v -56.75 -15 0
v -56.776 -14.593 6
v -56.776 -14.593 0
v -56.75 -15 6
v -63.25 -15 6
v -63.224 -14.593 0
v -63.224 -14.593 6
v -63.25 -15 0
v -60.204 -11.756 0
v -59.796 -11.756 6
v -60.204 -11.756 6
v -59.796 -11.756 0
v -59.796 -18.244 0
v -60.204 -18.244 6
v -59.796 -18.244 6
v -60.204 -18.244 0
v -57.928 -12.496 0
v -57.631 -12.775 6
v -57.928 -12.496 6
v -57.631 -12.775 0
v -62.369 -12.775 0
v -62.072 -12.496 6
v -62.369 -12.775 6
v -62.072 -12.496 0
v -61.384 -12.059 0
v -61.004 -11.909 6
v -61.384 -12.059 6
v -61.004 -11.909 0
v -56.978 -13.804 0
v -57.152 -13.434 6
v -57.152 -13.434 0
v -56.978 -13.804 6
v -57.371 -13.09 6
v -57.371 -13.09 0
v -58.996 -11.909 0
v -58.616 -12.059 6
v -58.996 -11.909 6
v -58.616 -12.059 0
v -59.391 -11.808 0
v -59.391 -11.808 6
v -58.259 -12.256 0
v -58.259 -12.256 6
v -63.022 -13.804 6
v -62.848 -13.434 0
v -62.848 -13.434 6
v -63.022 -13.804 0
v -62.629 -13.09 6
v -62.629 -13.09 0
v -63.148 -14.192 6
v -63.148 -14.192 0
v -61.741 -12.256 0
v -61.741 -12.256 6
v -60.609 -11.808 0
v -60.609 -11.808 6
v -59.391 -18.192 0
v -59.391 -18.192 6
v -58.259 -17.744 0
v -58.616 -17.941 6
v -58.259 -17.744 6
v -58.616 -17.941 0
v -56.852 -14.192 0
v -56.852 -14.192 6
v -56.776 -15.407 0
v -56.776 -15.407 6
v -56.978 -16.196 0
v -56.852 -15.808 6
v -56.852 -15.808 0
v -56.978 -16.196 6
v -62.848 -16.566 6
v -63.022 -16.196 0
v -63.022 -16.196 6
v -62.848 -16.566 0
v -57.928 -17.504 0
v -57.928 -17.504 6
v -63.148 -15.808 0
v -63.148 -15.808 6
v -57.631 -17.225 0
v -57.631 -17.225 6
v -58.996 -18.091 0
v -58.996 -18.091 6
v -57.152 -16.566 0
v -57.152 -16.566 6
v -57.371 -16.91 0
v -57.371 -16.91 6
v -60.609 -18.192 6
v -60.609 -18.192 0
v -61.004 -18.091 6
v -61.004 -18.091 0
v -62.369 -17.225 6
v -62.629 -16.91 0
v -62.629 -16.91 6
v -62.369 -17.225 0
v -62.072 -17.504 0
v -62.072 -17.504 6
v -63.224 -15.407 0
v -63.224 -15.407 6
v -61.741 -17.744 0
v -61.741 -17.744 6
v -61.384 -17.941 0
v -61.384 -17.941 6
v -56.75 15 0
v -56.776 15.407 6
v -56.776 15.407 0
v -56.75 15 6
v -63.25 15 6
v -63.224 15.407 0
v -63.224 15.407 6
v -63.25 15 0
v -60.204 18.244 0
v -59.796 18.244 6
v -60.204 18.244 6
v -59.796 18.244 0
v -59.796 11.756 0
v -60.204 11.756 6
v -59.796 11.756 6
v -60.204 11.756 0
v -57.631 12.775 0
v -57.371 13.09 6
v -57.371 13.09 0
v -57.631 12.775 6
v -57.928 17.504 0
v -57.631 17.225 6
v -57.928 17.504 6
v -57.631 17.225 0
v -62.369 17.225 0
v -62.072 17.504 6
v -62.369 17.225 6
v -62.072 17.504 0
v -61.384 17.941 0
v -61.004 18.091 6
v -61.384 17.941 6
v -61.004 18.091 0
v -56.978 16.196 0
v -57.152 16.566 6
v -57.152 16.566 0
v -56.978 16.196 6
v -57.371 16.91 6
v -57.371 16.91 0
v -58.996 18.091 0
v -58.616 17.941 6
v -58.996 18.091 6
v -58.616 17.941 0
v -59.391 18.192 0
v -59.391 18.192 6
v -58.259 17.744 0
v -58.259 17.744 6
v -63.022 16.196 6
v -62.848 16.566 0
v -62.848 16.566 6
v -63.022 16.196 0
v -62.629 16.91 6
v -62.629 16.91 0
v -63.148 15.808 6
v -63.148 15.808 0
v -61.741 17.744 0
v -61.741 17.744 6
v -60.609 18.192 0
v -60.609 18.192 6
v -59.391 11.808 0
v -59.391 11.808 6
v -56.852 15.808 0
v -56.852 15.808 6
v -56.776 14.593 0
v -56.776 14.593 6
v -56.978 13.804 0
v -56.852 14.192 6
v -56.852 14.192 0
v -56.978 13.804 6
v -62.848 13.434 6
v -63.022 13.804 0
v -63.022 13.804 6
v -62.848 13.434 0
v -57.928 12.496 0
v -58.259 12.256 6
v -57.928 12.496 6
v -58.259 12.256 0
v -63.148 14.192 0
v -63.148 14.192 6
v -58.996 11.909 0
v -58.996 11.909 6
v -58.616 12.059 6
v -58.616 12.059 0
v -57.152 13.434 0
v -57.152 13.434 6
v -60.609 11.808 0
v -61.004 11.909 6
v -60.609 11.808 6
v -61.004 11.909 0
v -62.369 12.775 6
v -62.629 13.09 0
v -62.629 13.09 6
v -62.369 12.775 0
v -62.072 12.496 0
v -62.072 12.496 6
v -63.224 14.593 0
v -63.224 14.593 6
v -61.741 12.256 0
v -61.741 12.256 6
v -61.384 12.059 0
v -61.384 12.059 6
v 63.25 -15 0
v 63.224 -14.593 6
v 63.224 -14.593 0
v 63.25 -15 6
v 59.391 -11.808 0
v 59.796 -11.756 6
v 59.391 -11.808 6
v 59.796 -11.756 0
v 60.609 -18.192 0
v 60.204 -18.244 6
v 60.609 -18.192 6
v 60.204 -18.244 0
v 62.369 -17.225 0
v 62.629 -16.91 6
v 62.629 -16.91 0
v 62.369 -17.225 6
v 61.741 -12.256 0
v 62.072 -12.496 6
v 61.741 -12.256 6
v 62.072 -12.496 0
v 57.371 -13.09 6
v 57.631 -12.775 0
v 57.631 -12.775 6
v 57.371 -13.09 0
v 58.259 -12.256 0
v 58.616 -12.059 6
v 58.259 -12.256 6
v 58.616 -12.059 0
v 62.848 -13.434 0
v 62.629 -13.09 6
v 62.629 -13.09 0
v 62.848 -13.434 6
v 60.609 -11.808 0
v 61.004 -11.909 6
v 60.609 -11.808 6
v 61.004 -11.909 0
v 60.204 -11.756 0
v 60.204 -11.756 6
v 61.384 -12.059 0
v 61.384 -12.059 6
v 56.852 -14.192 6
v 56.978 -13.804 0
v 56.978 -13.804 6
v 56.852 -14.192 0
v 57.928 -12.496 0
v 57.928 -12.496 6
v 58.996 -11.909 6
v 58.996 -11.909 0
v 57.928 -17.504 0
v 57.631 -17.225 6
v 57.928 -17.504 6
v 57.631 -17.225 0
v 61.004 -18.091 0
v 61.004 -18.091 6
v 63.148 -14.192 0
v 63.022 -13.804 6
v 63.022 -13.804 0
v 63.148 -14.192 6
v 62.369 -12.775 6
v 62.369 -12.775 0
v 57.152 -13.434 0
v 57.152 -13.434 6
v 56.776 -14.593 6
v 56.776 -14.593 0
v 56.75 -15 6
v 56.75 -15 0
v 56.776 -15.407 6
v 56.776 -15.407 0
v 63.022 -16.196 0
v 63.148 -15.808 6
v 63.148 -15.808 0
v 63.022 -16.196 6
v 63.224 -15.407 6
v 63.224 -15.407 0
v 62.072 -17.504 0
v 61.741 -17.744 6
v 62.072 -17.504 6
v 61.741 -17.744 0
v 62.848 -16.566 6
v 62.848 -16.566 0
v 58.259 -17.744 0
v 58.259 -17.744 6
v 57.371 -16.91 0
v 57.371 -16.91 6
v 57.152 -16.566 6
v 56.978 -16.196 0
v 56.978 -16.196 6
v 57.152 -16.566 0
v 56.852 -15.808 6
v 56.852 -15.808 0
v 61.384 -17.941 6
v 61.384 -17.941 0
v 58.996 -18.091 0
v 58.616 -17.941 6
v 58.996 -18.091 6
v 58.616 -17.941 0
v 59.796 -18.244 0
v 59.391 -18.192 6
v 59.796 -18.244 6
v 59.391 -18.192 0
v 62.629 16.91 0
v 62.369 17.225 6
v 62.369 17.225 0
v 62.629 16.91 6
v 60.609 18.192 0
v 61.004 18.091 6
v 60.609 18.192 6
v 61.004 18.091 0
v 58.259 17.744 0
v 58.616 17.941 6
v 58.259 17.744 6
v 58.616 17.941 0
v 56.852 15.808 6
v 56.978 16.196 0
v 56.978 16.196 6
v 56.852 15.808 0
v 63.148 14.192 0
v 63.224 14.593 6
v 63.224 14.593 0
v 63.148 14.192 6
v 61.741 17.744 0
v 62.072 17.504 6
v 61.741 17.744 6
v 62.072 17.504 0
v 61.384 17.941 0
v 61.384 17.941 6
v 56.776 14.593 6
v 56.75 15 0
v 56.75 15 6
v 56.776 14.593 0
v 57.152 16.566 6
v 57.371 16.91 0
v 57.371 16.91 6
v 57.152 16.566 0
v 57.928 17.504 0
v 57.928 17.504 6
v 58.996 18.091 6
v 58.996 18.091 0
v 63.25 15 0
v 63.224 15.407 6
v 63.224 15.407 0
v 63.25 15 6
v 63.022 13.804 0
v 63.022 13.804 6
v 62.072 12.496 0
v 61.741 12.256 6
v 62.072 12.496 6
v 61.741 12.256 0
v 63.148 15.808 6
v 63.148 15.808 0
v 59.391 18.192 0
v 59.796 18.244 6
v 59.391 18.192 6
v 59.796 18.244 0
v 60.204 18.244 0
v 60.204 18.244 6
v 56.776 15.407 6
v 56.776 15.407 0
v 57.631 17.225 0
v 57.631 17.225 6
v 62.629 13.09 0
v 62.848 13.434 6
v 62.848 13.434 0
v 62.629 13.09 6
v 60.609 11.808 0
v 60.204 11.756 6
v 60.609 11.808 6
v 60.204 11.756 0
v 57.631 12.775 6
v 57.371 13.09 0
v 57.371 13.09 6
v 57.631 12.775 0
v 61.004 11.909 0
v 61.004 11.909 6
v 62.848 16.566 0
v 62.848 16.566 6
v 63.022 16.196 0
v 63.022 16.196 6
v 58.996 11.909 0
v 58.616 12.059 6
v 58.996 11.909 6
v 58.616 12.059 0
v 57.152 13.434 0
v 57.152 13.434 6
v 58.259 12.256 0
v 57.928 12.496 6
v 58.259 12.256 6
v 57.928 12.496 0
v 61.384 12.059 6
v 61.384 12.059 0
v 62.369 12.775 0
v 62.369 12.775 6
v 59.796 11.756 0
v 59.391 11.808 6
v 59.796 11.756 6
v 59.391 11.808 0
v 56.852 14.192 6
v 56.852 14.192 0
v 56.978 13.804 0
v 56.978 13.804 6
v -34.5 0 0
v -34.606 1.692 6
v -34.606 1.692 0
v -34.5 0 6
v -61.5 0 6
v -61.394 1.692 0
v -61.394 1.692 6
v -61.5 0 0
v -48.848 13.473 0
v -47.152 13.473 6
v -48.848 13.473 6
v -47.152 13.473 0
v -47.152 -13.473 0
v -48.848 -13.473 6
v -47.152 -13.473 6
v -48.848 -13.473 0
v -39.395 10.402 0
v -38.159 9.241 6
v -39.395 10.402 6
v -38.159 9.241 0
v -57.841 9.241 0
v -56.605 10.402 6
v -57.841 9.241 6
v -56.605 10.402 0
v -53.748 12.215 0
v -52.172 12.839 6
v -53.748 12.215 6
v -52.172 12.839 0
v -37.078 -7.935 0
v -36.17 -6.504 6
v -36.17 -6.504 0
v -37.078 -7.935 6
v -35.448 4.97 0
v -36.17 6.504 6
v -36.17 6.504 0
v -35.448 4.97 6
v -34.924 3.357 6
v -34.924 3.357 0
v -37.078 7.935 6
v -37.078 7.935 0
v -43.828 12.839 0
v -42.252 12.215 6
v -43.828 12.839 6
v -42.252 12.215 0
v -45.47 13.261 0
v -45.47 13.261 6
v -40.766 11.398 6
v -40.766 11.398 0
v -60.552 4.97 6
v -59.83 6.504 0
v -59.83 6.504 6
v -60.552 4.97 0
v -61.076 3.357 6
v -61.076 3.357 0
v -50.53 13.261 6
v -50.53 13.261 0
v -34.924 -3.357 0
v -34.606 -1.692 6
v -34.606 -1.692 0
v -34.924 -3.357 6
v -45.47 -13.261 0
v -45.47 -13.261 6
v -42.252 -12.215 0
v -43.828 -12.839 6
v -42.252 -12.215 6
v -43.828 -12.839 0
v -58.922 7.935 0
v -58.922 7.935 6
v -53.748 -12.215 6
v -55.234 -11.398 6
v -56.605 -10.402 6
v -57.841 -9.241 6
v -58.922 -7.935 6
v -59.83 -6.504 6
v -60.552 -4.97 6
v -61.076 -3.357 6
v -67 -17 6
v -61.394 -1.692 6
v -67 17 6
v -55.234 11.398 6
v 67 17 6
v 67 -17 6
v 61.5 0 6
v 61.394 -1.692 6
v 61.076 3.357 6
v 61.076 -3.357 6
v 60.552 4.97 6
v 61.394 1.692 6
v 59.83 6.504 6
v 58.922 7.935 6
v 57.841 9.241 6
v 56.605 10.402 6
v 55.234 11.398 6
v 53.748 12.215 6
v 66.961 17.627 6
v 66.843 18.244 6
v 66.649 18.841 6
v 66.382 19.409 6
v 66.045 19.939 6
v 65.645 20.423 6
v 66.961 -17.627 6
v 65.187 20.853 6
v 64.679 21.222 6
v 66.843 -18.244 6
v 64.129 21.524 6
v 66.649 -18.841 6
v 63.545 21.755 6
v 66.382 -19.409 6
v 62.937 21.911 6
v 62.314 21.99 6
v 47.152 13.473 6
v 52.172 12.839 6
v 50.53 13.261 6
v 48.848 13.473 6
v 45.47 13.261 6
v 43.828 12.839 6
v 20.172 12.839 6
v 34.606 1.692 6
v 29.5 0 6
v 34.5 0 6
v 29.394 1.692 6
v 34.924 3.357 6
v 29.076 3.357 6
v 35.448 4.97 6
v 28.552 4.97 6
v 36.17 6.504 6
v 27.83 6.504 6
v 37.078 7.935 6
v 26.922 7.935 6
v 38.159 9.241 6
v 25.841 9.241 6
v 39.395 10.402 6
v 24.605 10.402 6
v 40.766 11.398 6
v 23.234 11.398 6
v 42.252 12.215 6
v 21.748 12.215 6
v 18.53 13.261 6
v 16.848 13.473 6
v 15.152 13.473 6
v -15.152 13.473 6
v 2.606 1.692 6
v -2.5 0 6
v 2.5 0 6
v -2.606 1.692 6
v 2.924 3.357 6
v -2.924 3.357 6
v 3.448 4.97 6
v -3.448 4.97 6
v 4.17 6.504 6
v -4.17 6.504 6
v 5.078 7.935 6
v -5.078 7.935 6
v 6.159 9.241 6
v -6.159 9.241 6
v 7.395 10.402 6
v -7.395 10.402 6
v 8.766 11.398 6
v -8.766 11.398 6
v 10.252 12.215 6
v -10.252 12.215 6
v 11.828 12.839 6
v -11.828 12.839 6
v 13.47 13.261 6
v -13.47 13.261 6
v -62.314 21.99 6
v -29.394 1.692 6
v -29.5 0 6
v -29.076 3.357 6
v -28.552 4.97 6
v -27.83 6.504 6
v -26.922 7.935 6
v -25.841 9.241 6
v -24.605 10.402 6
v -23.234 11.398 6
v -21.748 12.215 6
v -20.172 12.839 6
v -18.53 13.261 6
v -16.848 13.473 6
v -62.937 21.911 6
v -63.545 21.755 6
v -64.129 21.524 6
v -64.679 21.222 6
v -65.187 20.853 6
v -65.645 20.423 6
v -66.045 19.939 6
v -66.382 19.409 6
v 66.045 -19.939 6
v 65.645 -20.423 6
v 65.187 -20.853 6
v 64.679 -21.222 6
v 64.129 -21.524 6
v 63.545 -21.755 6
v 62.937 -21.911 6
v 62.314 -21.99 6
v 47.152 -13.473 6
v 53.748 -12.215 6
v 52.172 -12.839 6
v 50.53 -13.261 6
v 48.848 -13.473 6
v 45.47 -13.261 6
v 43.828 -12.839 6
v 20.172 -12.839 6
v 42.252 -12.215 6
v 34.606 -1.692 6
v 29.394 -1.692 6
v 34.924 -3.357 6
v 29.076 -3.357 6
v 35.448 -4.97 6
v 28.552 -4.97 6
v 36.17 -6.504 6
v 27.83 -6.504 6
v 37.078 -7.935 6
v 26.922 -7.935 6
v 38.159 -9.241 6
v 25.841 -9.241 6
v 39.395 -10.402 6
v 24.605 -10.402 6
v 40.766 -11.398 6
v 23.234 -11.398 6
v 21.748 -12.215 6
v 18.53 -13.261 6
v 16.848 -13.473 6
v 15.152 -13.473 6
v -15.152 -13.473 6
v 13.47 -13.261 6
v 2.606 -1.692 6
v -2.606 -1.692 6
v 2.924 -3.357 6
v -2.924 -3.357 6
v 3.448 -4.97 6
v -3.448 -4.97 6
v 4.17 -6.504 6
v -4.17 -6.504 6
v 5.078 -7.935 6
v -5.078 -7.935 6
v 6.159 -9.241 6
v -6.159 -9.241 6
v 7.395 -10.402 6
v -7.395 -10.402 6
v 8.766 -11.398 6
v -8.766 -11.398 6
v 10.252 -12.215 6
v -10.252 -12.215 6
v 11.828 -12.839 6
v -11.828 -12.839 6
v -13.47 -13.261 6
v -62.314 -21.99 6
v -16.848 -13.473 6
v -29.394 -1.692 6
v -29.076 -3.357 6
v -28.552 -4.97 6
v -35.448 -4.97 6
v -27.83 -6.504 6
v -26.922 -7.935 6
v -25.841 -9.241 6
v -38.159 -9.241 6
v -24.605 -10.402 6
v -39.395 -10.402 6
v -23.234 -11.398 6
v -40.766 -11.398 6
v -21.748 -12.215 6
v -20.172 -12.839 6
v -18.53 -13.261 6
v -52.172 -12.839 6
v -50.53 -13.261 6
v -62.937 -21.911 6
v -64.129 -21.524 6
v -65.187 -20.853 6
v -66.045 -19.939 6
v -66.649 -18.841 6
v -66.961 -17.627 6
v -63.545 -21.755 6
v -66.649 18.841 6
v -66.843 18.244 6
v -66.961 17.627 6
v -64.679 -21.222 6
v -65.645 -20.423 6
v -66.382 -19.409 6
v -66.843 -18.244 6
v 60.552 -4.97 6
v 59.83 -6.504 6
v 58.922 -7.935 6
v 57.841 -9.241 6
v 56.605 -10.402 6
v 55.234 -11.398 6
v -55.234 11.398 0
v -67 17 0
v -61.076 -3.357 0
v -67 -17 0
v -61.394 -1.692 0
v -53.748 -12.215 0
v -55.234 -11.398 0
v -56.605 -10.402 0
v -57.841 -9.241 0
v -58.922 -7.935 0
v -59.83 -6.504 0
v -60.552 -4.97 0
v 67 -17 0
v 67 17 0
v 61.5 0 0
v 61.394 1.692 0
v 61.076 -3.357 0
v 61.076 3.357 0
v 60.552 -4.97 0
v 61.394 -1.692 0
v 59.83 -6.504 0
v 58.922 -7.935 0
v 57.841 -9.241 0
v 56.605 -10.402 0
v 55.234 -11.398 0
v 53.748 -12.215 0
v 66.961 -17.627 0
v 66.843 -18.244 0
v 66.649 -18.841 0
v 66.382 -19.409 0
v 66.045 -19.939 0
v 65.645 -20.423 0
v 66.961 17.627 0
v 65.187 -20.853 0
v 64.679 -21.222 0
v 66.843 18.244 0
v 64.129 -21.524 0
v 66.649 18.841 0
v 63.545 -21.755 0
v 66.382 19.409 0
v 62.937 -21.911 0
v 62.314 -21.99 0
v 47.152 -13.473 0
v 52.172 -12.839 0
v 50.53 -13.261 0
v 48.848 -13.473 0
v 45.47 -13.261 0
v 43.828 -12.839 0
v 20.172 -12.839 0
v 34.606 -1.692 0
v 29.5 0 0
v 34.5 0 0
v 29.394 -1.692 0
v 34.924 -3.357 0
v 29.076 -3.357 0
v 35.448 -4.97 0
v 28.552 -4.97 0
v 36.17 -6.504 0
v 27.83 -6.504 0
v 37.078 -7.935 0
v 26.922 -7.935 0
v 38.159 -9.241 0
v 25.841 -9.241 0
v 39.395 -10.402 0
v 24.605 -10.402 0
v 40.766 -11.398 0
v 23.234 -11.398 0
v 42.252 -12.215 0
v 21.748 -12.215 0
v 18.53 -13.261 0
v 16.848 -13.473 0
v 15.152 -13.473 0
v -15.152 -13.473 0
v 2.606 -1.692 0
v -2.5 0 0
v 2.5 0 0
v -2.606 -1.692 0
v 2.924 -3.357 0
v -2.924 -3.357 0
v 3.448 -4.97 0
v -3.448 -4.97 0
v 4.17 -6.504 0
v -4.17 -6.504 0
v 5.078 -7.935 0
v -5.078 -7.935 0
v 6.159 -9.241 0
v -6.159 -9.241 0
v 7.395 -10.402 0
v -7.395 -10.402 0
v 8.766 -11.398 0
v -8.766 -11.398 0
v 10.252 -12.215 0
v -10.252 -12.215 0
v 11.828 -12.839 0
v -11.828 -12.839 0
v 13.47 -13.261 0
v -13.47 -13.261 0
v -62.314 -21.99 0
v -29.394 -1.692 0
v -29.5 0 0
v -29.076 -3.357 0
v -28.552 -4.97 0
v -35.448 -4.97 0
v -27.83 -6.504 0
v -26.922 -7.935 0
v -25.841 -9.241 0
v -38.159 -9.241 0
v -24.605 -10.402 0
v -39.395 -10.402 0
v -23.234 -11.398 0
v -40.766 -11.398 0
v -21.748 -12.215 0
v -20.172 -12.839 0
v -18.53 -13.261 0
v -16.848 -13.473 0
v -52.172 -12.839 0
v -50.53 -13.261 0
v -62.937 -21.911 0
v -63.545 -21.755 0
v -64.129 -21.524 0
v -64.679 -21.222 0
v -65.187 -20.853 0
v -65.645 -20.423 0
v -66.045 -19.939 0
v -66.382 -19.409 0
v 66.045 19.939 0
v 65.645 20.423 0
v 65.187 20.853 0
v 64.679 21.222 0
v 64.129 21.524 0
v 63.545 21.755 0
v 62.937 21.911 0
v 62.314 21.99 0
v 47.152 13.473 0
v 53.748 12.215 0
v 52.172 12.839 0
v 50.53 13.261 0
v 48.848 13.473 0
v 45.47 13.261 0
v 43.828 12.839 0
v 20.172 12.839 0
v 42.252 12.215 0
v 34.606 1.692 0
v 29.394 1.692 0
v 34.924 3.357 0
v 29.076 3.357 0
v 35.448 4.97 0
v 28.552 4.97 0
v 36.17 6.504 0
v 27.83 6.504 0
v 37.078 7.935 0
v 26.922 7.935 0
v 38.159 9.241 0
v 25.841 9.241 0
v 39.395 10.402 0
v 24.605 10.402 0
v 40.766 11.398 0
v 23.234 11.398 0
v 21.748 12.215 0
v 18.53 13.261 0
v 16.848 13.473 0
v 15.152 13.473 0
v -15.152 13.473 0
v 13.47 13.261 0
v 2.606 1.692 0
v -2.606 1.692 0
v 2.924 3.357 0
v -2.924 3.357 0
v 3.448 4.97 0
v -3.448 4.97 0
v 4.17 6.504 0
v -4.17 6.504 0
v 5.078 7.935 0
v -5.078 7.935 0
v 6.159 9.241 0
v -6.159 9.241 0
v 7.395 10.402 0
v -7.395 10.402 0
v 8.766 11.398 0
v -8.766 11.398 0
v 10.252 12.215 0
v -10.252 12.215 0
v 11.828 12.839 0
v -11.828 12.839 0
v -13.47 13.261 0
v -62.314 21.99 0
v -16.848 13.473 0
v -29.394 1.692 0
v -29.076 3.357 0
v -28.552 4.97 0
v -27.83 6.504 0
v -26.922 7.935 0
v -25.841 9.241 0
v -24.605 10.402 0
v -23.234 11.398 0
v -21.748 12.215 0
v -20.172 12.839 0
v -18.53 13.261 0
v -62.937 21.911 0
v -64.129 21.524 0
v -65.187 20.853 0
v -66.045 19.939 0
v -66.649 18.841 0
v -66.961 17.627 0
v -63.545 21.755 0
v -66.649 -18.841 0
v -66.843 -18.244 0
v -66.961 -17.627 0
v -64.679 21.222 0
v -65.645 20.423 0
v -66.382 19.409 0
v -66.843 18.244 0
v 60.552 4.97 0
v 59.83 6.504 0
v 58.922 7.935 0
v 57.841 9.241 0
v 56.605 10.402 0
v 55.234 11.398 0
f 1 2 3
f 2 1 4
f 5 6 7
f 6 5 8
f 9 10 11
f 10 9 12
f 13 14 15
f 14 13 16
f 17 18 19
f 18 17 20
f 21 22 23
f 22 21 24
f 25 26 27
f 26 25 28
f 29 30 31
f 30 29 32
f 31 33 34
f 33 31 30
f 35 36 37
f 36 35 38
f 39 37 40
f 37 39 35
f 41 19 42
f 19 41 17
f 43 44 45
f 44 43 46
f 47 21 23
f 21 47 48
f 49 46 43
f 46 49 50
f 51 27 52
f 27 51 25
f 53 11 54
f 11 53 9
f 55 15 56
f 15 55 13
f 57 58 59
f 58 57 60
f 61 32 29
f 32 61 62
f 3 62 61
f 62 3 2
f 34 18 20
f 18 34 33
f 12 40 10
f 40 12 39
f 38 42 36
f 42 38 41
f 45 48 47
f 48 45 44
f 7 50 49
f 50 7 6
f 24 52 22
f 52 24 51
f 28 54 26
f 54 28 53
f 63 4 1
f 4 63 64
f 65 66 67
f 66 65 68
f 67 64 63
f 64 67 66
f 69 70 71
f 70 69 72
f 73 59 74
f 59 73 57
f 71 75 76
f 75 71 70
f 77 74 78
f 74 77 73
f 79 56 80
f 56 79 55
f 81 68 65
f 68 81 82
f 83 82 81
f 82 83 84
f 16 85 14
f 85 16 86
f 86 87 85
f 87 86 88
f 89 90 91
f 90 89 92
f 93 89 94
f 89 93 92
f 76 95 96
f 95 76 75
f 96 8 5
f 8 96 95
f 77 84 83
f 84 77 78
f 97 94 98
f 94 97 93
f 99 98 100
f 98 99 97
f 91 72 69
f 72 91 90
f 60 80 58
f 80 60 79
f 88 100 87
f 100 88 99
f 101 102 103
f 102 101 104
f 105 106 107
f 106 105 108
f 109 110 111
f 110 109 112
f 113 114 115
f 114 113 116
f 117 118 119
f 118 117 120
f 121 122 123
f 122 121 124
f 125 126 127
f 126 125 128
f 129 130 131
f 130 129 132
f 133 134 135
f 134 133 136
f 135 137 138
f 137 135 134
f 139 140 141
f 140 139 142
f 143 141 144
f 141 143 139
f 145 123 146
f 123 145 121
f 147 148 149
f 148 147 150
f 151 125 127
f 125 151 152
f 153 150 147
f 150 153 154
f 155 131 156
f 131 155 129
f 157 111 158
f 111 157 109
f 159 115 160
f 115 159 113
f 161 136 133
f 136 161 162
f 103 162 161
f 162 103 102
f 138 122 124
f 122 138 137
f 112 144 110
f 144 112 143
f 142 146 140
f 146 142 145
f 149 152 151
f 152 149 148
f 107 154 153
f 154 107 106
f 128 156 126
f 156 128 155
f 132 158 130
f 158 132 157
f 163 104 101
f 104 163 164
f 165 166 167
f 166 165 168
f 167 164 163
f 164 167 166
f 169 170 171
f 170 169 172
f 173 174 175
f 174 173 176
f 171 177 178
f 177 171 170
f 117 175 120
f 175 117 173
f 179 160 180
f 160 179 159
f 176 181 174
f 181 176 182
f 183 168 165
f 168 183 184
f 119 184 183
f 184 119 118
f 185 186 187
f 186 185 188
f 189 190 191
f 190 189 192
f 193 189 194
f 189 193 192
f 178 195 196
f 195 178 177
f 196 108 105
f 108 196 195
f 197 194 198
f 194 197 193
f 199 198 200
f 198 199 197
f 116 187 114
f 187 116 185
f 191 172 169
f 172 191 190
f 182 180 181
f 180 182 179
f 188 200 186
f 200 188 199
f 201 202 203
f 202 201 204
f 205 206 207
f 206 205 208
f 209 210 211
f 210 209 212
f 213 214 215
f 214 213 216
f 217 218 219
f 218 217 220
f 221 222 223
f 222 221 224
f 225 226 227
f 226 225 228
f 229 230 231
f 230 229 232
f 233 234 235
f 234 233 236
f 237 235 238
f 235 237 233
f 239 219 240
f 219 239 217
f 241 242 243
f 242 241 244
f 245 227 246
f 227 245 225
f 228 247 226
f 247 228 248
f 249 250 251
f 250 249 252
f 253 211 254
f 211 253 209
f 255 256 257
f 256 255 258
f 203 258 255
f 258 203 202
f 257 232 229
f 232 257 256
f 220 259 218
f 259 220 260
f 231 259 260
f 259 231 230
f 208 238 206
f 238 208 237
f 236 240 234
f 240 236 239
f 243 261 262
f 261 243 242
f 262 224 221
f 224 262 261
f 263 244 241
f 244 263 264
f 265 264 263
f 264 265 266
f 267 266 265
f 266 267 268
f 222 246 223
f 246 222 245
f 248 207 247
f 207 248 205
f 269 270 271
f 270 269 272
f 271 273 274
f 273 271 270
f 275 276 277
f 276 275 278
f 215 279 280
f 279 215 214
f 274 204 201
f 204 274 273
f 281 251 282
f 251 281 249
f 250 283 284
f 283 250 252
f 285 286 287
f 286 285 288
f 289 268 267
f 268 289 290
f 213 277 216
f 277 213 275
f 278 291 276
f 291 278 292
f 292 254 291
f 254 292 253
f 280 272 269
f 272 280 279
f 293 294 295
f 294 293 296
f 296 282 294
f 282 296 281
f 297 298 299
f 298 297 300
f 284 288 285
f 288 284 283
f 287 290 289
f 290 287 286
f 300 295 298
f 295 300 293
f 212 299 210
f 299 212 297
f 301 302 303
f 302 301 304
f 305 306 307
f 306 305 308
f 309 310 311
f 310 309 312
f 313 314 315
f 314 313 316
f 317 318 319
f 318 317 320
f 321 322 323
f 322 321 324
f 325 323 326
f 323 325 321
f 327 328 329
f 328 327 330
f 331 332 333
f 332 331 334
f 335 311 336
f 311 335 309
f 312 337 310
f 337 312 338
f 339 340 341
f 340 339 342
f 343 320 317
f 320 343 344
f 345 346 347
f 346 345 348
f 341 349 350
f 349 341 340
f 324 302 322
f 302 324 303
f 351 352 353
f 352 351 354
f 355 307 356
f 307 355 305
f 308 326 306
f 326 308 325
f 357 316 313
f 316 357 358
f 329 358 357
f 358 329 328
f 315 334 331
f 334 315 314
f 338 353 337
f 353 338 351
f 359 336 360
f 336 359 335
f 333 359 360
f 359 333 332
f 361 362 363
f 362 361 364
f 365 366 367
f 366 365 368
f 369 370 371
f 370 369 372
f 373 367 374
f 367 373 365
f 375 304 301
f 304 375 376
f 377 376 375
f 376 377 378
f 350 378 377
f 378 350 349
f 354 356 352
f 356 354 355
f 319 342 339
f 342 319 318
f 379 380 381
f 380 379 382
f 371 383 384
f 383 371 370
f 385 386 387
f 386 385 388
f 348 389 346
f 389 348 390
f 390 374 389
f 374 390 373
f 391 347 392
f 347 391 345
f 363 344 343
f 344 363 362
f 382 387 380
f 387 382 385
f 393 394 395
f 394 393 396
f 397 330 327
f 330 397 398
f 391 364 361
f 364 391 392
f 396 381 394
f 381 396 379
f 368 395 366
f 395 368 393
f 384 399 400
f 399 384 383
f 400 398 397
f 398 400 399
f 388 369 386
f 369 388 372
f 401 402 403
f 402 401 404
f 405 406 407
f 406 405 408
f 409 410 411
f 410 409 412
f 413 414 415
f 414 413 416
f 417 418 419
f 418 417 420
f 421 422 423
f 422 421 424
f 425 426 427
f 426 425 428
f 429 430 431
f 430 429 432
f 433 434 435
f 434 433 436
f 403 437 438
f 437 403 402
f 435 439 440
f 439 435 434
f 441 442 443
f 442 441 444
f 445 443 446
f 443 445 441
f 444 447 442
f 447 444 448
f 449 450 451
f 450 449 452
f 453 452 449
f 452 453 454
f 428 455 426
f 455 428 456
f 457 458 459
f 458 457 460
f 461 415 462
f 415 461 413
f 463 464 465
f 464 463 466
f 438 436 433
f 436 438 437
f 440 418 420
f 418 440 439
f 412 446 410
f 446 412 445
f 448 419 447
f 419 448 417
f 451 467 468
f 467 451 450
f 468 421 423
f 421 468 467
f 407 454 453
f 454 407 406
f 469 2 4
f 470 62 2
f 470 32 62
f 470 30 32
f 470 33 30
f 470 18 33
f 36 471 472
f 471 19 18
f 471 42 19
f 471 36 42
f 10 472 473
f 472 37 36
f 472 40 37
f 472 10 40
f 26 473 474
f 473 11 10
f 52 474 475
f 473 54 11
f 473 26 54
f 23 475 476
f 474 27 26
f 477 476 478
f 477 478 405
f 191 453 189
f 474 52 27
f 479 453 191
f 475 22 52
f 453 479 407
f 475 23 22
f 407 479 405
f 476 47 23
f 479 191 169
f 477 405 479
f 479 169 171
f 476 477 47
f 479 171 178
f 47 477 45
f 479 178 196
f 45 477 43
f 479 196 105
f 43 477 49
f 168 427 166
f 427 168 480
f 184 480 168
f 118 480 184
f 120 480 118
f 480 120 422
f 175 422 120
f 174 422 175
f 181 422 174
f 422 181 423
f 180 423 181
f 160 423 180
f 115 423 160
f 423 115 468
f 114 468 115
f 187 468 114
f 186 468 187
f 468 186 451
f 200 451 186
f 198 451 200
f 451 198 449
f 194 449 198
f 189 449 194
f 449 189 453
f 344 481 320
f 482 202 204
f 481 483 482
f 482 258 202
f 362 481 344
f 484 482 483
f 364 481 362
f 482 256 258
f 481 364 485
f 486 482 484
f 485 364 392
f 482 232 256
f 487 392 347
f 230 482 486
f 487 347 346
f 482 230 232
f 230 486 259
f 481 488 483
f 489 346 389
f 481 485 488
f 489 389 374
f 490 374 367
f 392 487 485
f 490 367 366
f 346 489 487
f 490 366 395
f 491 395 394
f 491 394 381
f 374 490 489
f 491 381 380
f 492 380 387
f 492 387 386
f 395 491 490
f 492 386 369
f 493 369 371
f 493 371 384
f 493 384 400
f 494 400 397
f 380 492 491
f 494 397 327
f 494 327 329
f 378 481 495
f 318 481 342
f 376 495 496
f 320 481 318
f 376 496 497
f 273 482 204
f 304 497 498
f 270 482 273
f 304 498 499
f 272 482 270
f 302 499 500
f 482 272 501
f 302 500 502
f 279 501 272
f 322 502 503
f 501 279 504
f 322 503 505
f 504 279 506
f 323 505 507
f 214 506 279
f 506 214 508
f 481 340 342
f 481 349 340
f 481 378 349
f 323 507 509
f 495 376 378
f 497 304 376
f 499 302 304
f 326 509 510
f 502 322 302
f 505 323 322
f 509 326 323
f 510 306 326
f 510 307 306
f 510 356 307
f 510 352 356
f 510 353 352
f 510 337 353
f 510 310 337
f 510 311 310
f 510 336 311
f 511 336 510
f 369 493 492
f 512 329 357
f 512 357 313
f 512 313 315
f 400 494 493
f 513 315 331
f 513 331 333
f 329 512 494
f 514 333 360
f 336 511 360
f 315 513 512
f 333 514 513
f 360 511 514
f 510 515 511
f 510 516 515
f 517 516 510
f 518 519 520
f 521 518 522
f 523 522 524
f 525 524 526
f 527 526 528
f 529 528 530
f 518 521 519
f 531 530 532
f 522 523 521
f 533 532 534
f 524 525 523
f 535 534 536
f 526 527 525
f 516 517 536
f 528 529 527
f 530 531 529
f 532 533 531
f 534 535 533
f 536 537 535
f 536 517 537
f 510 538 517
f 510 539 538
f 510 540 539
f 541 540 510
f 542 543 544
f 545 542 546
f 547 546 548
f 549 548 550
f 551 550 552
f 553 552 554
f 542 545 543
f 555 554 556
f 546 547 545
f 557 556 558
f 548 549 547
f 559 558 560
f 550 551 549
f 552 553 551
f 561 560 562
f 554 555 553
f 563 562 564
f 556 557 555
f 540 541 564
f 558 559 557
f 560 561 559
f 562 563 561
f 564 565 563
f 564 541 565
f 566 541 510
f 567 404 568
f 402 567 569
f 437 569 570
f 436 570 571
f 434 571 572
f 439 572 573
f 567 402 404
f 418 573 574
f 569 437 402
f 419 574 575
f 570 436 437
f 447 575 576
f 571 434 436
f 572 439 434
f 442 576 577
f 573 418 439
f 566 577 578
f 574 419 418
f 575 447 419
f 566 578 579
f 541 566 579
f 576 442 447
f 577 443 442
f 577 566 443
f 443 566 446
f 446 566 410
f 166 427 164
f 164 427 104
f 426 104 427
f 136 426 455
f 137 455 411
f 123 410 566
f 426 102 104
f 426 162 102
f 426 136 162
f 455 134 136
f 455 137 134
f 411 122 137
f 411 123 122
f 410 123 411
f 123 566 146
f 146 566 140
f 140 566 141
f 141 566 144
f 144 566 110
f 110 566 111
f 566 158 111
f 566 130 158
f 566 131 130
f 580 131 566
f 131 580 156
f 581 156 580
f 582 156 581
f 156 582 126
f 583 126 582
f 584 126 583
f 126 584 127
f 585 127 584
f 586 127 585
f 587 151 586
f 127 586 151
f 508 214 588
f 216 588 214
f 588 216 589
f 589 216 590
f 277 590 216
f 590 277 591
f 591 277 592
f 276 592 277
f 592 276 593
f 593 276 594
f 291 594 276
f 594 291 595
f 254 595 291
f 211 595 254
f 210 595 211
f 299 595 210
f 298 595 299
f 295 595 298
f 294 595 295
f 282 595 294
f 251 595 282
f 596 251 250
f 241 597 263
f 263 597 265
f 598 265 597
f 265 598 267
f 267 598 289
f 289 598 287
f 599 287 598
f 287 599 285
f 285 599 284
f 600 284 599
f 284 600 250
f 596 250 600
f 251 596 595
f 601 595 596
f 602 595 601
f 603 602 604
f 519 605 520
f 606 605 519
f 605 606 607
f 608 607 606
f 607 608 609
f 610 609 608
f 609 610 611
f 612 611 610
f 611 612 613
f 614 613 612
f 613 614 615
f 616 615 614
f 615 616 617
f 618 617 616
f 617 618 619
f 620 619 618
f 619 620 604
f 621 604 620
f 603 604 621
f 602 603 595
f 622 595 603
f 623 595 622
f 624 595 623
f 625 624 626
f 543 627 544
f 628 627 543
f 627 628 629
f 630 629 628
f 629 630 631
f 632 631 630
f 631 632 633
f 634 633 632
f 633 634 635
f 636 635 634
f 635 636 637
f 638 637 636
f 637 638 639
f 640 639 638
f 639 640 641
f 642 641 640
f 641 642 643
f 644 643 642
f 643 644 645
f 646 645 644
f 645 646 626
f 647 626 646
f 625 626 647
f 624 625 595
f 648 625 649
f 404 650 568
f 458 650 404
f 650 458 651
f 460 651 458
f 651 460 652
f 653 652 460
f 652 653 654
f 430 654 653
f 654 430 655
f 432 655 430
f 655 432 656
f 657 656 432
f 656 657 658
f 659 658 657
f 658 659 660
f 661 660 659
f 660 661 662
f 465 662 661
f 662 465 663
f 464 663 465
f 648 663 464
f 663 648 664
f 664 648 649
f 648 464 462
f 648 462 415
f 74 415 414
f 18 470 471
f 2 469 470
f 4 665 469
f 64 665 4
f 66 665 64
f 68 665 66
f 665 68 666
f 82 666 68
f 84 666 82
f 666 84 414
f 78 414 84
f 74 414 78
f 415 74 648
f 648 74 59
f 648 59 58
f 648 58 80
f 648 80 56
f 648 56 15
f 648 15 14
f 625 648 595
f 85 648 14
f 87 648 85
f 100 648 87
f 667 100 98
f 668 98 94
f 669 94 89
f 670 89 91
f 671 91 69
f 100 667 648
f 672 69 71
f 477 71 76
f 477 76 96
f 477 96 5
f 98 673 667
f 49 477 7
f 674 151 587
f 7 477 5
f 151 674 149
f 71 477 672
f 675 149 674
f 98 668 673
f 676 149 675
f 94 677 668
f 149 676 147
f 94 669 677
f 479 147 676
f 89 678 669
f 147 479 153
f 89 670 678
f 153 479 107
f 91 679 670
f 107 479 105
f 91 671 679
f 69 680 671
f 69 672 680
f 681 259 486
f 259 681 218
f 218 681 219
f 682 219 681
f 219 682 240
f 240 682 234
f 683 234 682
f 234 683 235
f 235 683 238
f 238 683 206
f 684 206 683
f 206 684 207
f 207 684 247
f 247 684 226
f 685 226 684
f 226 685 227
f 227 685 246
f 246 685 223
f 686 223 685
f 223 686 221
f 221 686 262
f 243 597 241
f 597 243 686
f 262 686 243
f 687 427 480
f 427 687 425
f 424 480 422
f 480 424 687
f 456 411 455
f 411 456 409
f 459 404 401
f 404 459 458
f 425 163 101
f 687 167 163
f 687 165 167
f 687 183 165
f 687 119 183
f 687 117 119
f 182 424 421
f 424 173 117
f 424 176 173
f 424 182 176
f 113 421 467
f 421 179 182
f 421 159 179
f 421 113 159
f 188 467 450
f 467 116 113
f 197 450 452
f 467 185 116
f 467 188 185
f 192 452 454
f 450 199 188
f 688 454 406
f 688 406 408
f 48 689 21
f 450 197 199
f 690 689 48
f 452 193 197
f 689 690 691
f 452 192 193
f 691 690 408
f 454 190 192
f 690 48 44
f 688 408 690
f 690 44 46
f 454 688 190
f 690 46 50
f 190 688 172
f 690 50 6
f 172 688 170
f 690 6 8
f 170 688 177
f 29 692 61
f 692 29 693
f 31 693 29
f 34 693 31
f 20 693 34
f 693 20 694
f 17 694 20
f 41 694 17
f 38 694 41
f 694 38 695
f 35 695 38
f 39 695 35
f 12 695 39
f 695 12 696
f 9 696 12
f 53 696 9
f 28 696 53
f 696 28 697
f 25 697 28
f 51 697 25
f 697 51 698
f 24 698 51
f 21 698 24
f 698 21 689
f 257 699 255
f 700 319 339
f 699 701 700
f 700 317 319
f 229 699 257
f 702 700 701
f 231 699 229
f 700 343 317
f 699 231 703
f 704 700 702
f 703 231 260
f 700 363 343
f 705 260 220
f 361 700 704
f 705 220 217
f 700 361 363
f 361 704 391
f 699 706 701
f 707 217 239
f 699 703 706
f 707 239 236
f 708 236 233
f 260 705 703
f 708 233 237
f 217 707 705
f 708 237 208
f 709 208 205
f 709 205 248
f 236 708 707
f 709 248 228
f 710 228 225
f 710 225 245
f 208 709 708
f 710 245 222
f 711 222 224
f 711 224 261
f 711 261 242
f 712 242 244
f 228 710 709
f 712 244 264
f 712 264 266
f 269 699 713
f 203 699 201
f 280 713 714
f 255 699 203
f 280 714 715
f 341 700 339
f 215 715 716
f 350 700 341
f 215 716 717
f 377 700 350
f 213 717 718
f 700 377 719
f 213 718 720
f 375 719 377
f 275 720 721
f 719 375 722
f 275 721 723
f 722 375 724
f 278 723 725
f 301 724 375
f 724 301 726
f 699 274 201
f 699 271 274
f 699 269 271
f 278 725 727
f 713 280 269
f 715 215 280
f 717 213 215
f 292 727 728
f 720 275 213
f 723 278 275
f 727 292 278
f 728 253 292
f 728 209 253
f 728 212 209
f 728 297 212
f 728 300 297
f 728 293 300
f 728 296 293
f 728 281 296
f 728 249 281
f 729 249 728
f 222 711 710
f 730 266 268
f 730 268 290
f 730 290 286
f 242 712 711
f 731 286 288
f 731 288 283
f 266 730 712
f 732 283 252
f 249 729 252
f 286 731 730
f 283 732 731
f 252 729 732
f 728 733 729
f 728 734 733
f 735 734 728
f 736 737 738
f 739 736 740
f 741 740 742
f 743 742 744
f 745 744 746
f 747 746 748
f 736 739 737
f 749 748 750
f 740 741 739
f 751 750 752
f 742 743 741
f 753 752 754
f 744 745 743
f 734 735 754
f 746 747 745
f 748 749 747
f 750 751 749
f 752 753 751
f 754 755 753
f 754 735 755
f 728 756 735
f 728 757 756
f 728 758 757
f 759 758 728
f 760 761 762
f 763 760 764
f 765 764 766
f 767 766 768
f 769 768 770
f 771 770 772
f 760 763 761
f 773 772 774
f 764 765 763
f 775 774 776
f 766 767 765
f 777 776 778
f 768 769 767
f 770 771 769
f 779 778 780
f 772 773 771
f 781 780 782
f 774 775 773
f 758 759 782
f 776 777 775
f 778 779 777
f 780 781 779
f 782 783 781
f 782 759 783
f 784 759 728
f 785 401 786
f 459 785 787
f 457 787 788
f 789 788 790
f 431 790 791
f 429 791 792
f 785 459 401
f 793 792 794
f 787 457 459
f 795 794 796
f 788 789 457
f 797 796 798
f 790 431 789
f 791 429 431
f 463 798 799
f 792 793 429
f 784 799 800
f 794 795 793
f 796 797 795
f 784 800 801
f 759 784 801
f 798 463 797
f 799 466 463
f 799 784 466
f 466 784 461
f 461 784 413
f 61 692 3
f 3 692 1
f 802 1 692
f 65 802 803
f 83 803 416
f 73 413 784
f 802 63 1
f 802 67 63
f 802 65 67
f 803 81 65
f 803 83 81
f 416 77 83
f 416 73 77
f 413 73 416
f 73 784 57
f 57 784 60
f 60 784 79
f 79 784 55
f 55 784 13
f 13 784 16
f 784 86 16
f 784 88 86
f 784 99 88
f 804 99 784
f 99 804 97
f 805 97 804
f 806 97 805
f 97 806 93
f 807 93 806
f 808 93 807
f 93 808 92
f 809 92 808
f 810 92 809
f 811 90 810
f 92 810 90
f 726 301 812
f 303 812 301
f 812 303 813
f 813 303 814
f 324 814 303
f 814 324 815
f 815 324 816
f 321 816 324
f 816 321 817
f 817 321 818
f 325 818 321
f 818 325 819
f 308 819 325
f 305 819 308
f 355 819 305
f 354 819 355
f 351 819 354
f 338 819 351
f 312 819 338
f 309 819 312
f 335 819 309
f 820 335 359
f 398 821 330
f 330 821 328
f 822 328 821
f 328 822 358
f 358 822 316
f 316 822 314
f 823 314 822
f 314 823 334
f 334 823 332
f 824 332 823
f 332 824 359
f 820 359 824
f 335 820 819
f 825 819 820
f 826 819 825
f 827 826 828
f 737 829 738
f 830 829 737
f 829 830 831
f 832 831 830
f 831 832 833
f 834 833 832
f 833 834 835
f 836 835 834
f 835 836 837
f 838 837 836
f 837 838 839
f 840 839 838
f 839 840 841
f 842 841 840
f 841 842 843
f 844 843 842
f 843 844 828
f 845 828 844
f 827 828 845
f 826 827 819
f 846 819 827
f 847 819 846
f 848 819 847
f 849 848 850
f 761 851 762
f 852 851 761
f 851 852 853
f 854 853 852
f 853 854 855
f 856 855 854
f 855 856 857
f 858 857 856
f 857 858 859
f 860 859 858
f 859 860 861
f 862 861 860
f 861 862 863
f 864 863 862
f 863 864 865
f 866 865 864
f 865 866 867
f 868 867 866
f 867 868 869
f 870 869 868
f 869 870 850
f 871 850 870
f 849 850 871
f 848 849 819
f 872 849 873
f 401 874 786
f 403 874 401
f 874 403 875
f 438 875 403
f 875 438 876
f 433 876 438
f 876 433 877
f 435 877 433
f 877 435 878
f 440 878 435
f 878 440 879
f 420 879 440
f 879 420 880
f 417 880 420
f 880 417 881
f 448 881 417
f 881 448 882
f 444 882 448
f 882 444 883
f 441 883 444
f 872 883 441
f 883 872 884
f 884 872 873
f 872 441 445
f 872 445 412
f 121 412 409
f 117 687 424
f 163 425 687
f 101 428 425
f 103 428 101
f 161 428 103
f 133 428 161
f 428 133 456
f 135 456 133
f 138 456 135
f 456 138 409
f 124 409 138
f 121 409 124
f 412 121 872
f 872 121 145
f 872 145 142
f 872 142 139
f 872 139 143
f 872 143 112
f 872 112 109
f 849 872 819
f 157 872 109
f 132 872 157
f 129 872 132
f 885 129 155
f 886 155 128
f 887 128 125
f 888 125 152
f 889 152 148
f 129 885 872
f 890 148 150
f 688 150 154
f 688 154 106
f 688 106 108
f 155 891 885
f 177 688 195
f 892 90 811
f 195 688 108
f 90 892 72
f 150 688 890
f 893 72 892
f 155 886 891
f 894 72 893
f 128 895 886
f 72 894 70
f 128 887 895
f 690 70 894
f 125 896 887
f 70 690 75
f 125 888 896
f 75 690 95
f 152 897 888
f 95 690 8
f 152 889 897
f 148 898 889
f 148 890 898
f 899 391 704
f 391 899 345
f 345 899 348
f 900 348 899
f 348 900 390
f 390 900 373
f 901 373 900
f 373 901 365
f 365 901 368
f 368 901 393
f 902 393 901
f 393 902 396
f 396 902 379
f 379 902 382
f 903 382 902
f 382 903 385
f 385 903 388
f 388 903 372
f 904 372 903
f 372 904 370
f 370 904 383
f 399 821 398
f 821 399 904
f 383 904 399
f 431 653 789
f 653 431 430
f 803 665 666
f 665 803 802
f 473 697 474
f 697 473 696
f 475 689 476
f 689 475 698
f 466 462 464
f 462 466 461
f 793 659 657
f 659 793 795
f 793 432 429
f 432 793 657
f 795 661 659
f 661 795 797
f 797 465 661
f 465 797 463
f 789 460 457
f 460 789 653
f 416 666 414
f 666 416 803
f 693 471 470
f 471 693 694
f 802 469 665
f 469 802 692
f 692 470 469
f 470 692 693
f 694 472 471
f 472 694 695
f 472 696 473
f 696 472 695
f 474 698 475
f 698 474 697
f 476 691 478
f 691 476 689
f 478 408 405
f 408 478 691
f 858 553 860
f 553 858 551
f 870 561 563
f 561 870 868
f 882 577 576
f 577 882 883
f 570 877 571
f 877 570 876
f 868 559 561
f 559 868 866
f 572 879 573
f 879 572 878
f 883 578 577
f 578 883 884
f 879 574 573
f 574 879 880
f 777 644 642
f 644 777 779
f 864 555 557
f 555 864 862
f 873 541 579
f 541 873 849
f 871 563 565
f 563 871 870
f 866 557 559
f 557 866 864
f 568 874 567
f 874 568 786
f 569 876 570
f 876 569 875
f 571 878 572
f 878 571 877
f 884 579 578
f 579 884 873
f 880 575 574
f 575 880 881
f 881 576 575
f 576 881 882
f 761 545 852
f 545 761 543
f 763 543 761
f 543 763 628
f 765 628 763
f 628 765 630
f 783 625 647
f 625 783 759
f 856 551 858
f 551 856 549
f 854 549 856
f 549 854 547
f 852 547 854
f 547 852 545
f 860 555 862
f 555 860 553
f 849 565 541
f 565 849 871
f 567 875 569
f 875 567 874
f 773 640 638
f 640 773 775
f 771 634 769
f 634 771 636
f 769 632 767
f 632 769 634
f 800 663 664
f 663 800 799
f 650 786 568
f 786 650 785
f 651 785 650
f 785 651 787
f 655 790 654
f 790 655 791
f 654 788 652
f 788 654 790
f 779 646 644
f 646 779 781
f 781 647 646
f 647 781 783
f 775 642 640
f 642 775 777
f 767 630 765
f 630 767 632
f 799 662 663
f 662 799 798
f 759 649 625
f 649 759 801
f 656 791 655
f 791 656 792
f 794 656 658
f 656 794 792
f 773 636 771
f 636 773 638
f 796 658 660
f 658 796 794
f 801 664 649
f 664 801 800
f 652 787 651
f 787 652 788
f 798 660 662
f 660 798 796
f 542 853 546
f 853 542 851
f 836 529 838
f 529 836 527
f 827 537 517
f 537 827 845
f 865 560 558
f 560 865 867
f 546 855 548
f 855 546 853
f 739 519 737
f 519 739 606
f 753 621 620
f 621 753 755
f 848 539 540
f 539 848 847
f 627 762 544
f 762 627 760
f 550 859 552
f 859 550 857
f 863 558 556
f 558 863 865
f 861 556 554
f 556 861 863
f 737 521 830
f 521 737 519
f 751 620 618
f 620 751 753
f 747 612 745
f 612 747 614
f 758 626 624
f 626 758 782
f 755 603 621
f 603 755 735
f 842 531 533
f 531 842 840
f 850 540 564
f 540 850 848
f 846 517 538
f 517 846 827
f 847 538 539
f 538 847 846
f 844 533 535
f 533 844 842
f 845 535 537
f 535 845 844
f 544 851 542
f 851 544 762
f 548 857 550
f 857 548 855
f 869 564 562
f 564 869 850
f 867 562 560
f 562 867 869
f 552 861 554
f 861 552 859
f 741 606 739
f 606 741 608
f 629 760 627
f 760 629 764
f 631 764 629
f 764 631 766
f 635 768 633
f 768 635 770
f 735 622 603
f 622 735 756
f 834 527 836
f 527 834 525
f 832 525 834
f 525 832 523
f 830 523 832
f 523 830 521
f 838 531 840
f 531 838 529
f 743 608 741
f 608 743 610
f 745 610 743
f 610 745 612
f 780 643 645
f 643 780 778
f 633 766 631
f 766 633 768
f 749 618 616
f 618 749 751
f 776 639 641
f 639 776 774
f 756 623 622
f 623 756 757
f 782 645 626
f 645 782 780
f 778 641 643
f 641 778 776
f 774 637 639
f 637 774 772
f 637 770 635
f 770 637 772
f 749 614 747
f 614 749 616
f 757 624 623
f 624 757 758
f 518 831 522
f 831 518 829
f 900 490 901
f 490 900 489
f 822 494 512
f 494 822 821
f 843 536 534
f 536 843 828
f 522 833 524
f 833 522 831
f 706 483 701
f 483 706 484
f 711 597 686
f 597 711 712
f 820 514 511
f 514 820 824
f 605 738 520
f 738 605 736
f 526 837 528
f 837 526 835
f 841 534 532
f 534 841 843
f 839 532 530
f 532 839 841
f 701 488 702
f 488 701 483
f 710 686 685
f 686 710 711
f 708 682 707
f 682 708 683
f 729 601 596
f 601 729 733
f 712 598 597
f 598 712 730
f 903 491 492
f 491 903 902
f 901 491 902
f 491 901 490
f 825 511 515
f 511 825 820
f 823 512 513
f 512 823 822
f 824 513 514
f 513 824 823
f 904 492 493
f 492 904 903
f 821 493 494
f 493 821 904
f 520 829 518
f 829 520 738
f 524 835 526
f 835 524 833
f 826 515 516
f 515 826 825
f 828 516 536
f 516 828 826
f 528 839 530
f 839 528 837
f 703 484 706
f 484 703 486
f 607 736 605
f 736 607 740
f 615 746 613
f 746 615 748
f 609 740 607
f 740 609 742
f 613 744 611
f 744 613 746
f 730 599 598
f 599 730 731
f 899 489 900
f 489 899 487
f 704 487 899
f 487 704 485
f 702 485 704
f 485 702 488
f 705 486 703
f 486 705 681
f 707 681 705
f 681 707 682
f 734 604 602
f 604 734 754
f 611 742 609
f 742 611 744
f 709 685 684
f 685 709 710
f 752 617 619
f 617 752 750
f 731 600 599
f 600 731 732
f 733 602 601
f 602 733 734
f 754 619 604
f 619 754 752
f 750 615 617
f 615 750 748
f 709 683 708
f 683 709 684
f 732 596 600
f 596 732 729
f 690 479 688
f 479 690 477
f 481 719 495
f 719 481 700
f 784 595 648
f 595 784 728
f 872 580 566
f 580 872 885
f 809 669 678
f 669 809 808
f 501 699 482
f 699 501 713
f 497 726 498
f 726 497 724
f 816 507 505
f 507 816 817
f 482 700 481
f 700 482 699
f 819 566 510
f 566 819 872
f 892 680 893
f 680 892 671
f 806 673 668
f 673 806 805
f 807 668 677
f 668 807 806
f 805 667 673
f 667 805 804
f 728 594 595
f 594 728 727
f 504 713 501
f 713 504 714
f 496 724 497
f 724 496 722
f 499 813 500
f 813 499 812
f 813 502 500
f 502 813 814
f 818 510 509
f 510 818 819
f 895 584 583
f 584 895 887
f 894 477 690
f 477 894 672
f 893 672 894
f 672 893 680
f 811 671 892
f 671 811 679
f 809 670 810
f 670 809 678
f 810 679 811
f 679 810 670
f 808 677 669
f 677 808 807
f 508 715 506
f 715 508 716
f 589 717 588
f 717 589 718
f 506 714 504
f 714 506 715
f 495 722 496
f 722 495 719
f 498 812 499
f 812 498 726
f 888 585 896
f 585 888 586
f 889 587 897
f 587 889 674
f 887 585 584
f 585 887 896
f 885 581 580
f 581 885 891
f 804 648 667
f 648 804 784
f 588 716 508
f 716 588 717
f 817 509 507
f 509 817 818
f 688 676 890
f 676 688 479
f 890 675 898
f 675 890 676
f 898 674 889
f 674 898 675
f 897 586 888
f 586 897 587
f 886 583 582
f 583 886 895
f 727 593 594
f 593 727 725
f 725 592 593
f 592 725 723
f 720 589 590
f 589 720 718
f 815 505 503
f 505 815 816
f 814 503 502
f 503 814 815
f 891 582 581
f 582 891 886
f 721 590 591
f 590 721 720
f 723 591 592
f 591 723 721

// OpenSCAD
$fn = 50;


difference() {
	union() {
		hull() {
			translate(v = [-62.0000000000, 17.0000000000, 0]) {
				cylinder(h = 6, r = 5);
			}
			translate(v = [62.0000000000, 17.0000000000, 0]) {
				cylinder(h = 6, r = 5);
			}
			translate(v = [-62.0000000000, -17.0000000000, 0]) {
				cylinder(h = 6, r = 5);
			}
			translate(v = [62.0000000000, -17.0000000000, 0]) {
				cylinder(h = 6, r = 5);
			}
		}
	}
	union() {
		#translate(v = [-60.0000000000, -15.0000000000, -100.0000000000]) {
			cylinder(h = 200, r = 3.2500000000);
		}
		#translate(v = [-60.0000000000, 15.0000000000, -100.0000000000]) {
			cylinder(h = 200, r = 3.2500000000);
		}
		#translate(v = [60.0000000000, -15.0000000000, -100.0000000000]) {
			cylinder(h = 200, r = 3.2500000000);
		}
		#translate(v = [60.0000000000, 15.0000000000, -100.0000000000]) {
			cylinder(h = 200, r = 3.2500000000);
		}
		#translate(v = [-48.0000000000, 0, 0]) {
			cylinder(h = 6, r = 13.5000000000);
		}
		#translate(v = [-16.0000000000, 0, 0]) {
			cylinder(h = 6, r = 13.5000000000);
		}
		#translate(v = [16.0000000000, 0, 0]) {
			cylinder(h = 6, r = 13.5000000000);
		}
		#translate(v = [48.0000000000, 0, 0]) {
			cylinder(h = 6, r = 13.5000000000);
		}
	}
}
